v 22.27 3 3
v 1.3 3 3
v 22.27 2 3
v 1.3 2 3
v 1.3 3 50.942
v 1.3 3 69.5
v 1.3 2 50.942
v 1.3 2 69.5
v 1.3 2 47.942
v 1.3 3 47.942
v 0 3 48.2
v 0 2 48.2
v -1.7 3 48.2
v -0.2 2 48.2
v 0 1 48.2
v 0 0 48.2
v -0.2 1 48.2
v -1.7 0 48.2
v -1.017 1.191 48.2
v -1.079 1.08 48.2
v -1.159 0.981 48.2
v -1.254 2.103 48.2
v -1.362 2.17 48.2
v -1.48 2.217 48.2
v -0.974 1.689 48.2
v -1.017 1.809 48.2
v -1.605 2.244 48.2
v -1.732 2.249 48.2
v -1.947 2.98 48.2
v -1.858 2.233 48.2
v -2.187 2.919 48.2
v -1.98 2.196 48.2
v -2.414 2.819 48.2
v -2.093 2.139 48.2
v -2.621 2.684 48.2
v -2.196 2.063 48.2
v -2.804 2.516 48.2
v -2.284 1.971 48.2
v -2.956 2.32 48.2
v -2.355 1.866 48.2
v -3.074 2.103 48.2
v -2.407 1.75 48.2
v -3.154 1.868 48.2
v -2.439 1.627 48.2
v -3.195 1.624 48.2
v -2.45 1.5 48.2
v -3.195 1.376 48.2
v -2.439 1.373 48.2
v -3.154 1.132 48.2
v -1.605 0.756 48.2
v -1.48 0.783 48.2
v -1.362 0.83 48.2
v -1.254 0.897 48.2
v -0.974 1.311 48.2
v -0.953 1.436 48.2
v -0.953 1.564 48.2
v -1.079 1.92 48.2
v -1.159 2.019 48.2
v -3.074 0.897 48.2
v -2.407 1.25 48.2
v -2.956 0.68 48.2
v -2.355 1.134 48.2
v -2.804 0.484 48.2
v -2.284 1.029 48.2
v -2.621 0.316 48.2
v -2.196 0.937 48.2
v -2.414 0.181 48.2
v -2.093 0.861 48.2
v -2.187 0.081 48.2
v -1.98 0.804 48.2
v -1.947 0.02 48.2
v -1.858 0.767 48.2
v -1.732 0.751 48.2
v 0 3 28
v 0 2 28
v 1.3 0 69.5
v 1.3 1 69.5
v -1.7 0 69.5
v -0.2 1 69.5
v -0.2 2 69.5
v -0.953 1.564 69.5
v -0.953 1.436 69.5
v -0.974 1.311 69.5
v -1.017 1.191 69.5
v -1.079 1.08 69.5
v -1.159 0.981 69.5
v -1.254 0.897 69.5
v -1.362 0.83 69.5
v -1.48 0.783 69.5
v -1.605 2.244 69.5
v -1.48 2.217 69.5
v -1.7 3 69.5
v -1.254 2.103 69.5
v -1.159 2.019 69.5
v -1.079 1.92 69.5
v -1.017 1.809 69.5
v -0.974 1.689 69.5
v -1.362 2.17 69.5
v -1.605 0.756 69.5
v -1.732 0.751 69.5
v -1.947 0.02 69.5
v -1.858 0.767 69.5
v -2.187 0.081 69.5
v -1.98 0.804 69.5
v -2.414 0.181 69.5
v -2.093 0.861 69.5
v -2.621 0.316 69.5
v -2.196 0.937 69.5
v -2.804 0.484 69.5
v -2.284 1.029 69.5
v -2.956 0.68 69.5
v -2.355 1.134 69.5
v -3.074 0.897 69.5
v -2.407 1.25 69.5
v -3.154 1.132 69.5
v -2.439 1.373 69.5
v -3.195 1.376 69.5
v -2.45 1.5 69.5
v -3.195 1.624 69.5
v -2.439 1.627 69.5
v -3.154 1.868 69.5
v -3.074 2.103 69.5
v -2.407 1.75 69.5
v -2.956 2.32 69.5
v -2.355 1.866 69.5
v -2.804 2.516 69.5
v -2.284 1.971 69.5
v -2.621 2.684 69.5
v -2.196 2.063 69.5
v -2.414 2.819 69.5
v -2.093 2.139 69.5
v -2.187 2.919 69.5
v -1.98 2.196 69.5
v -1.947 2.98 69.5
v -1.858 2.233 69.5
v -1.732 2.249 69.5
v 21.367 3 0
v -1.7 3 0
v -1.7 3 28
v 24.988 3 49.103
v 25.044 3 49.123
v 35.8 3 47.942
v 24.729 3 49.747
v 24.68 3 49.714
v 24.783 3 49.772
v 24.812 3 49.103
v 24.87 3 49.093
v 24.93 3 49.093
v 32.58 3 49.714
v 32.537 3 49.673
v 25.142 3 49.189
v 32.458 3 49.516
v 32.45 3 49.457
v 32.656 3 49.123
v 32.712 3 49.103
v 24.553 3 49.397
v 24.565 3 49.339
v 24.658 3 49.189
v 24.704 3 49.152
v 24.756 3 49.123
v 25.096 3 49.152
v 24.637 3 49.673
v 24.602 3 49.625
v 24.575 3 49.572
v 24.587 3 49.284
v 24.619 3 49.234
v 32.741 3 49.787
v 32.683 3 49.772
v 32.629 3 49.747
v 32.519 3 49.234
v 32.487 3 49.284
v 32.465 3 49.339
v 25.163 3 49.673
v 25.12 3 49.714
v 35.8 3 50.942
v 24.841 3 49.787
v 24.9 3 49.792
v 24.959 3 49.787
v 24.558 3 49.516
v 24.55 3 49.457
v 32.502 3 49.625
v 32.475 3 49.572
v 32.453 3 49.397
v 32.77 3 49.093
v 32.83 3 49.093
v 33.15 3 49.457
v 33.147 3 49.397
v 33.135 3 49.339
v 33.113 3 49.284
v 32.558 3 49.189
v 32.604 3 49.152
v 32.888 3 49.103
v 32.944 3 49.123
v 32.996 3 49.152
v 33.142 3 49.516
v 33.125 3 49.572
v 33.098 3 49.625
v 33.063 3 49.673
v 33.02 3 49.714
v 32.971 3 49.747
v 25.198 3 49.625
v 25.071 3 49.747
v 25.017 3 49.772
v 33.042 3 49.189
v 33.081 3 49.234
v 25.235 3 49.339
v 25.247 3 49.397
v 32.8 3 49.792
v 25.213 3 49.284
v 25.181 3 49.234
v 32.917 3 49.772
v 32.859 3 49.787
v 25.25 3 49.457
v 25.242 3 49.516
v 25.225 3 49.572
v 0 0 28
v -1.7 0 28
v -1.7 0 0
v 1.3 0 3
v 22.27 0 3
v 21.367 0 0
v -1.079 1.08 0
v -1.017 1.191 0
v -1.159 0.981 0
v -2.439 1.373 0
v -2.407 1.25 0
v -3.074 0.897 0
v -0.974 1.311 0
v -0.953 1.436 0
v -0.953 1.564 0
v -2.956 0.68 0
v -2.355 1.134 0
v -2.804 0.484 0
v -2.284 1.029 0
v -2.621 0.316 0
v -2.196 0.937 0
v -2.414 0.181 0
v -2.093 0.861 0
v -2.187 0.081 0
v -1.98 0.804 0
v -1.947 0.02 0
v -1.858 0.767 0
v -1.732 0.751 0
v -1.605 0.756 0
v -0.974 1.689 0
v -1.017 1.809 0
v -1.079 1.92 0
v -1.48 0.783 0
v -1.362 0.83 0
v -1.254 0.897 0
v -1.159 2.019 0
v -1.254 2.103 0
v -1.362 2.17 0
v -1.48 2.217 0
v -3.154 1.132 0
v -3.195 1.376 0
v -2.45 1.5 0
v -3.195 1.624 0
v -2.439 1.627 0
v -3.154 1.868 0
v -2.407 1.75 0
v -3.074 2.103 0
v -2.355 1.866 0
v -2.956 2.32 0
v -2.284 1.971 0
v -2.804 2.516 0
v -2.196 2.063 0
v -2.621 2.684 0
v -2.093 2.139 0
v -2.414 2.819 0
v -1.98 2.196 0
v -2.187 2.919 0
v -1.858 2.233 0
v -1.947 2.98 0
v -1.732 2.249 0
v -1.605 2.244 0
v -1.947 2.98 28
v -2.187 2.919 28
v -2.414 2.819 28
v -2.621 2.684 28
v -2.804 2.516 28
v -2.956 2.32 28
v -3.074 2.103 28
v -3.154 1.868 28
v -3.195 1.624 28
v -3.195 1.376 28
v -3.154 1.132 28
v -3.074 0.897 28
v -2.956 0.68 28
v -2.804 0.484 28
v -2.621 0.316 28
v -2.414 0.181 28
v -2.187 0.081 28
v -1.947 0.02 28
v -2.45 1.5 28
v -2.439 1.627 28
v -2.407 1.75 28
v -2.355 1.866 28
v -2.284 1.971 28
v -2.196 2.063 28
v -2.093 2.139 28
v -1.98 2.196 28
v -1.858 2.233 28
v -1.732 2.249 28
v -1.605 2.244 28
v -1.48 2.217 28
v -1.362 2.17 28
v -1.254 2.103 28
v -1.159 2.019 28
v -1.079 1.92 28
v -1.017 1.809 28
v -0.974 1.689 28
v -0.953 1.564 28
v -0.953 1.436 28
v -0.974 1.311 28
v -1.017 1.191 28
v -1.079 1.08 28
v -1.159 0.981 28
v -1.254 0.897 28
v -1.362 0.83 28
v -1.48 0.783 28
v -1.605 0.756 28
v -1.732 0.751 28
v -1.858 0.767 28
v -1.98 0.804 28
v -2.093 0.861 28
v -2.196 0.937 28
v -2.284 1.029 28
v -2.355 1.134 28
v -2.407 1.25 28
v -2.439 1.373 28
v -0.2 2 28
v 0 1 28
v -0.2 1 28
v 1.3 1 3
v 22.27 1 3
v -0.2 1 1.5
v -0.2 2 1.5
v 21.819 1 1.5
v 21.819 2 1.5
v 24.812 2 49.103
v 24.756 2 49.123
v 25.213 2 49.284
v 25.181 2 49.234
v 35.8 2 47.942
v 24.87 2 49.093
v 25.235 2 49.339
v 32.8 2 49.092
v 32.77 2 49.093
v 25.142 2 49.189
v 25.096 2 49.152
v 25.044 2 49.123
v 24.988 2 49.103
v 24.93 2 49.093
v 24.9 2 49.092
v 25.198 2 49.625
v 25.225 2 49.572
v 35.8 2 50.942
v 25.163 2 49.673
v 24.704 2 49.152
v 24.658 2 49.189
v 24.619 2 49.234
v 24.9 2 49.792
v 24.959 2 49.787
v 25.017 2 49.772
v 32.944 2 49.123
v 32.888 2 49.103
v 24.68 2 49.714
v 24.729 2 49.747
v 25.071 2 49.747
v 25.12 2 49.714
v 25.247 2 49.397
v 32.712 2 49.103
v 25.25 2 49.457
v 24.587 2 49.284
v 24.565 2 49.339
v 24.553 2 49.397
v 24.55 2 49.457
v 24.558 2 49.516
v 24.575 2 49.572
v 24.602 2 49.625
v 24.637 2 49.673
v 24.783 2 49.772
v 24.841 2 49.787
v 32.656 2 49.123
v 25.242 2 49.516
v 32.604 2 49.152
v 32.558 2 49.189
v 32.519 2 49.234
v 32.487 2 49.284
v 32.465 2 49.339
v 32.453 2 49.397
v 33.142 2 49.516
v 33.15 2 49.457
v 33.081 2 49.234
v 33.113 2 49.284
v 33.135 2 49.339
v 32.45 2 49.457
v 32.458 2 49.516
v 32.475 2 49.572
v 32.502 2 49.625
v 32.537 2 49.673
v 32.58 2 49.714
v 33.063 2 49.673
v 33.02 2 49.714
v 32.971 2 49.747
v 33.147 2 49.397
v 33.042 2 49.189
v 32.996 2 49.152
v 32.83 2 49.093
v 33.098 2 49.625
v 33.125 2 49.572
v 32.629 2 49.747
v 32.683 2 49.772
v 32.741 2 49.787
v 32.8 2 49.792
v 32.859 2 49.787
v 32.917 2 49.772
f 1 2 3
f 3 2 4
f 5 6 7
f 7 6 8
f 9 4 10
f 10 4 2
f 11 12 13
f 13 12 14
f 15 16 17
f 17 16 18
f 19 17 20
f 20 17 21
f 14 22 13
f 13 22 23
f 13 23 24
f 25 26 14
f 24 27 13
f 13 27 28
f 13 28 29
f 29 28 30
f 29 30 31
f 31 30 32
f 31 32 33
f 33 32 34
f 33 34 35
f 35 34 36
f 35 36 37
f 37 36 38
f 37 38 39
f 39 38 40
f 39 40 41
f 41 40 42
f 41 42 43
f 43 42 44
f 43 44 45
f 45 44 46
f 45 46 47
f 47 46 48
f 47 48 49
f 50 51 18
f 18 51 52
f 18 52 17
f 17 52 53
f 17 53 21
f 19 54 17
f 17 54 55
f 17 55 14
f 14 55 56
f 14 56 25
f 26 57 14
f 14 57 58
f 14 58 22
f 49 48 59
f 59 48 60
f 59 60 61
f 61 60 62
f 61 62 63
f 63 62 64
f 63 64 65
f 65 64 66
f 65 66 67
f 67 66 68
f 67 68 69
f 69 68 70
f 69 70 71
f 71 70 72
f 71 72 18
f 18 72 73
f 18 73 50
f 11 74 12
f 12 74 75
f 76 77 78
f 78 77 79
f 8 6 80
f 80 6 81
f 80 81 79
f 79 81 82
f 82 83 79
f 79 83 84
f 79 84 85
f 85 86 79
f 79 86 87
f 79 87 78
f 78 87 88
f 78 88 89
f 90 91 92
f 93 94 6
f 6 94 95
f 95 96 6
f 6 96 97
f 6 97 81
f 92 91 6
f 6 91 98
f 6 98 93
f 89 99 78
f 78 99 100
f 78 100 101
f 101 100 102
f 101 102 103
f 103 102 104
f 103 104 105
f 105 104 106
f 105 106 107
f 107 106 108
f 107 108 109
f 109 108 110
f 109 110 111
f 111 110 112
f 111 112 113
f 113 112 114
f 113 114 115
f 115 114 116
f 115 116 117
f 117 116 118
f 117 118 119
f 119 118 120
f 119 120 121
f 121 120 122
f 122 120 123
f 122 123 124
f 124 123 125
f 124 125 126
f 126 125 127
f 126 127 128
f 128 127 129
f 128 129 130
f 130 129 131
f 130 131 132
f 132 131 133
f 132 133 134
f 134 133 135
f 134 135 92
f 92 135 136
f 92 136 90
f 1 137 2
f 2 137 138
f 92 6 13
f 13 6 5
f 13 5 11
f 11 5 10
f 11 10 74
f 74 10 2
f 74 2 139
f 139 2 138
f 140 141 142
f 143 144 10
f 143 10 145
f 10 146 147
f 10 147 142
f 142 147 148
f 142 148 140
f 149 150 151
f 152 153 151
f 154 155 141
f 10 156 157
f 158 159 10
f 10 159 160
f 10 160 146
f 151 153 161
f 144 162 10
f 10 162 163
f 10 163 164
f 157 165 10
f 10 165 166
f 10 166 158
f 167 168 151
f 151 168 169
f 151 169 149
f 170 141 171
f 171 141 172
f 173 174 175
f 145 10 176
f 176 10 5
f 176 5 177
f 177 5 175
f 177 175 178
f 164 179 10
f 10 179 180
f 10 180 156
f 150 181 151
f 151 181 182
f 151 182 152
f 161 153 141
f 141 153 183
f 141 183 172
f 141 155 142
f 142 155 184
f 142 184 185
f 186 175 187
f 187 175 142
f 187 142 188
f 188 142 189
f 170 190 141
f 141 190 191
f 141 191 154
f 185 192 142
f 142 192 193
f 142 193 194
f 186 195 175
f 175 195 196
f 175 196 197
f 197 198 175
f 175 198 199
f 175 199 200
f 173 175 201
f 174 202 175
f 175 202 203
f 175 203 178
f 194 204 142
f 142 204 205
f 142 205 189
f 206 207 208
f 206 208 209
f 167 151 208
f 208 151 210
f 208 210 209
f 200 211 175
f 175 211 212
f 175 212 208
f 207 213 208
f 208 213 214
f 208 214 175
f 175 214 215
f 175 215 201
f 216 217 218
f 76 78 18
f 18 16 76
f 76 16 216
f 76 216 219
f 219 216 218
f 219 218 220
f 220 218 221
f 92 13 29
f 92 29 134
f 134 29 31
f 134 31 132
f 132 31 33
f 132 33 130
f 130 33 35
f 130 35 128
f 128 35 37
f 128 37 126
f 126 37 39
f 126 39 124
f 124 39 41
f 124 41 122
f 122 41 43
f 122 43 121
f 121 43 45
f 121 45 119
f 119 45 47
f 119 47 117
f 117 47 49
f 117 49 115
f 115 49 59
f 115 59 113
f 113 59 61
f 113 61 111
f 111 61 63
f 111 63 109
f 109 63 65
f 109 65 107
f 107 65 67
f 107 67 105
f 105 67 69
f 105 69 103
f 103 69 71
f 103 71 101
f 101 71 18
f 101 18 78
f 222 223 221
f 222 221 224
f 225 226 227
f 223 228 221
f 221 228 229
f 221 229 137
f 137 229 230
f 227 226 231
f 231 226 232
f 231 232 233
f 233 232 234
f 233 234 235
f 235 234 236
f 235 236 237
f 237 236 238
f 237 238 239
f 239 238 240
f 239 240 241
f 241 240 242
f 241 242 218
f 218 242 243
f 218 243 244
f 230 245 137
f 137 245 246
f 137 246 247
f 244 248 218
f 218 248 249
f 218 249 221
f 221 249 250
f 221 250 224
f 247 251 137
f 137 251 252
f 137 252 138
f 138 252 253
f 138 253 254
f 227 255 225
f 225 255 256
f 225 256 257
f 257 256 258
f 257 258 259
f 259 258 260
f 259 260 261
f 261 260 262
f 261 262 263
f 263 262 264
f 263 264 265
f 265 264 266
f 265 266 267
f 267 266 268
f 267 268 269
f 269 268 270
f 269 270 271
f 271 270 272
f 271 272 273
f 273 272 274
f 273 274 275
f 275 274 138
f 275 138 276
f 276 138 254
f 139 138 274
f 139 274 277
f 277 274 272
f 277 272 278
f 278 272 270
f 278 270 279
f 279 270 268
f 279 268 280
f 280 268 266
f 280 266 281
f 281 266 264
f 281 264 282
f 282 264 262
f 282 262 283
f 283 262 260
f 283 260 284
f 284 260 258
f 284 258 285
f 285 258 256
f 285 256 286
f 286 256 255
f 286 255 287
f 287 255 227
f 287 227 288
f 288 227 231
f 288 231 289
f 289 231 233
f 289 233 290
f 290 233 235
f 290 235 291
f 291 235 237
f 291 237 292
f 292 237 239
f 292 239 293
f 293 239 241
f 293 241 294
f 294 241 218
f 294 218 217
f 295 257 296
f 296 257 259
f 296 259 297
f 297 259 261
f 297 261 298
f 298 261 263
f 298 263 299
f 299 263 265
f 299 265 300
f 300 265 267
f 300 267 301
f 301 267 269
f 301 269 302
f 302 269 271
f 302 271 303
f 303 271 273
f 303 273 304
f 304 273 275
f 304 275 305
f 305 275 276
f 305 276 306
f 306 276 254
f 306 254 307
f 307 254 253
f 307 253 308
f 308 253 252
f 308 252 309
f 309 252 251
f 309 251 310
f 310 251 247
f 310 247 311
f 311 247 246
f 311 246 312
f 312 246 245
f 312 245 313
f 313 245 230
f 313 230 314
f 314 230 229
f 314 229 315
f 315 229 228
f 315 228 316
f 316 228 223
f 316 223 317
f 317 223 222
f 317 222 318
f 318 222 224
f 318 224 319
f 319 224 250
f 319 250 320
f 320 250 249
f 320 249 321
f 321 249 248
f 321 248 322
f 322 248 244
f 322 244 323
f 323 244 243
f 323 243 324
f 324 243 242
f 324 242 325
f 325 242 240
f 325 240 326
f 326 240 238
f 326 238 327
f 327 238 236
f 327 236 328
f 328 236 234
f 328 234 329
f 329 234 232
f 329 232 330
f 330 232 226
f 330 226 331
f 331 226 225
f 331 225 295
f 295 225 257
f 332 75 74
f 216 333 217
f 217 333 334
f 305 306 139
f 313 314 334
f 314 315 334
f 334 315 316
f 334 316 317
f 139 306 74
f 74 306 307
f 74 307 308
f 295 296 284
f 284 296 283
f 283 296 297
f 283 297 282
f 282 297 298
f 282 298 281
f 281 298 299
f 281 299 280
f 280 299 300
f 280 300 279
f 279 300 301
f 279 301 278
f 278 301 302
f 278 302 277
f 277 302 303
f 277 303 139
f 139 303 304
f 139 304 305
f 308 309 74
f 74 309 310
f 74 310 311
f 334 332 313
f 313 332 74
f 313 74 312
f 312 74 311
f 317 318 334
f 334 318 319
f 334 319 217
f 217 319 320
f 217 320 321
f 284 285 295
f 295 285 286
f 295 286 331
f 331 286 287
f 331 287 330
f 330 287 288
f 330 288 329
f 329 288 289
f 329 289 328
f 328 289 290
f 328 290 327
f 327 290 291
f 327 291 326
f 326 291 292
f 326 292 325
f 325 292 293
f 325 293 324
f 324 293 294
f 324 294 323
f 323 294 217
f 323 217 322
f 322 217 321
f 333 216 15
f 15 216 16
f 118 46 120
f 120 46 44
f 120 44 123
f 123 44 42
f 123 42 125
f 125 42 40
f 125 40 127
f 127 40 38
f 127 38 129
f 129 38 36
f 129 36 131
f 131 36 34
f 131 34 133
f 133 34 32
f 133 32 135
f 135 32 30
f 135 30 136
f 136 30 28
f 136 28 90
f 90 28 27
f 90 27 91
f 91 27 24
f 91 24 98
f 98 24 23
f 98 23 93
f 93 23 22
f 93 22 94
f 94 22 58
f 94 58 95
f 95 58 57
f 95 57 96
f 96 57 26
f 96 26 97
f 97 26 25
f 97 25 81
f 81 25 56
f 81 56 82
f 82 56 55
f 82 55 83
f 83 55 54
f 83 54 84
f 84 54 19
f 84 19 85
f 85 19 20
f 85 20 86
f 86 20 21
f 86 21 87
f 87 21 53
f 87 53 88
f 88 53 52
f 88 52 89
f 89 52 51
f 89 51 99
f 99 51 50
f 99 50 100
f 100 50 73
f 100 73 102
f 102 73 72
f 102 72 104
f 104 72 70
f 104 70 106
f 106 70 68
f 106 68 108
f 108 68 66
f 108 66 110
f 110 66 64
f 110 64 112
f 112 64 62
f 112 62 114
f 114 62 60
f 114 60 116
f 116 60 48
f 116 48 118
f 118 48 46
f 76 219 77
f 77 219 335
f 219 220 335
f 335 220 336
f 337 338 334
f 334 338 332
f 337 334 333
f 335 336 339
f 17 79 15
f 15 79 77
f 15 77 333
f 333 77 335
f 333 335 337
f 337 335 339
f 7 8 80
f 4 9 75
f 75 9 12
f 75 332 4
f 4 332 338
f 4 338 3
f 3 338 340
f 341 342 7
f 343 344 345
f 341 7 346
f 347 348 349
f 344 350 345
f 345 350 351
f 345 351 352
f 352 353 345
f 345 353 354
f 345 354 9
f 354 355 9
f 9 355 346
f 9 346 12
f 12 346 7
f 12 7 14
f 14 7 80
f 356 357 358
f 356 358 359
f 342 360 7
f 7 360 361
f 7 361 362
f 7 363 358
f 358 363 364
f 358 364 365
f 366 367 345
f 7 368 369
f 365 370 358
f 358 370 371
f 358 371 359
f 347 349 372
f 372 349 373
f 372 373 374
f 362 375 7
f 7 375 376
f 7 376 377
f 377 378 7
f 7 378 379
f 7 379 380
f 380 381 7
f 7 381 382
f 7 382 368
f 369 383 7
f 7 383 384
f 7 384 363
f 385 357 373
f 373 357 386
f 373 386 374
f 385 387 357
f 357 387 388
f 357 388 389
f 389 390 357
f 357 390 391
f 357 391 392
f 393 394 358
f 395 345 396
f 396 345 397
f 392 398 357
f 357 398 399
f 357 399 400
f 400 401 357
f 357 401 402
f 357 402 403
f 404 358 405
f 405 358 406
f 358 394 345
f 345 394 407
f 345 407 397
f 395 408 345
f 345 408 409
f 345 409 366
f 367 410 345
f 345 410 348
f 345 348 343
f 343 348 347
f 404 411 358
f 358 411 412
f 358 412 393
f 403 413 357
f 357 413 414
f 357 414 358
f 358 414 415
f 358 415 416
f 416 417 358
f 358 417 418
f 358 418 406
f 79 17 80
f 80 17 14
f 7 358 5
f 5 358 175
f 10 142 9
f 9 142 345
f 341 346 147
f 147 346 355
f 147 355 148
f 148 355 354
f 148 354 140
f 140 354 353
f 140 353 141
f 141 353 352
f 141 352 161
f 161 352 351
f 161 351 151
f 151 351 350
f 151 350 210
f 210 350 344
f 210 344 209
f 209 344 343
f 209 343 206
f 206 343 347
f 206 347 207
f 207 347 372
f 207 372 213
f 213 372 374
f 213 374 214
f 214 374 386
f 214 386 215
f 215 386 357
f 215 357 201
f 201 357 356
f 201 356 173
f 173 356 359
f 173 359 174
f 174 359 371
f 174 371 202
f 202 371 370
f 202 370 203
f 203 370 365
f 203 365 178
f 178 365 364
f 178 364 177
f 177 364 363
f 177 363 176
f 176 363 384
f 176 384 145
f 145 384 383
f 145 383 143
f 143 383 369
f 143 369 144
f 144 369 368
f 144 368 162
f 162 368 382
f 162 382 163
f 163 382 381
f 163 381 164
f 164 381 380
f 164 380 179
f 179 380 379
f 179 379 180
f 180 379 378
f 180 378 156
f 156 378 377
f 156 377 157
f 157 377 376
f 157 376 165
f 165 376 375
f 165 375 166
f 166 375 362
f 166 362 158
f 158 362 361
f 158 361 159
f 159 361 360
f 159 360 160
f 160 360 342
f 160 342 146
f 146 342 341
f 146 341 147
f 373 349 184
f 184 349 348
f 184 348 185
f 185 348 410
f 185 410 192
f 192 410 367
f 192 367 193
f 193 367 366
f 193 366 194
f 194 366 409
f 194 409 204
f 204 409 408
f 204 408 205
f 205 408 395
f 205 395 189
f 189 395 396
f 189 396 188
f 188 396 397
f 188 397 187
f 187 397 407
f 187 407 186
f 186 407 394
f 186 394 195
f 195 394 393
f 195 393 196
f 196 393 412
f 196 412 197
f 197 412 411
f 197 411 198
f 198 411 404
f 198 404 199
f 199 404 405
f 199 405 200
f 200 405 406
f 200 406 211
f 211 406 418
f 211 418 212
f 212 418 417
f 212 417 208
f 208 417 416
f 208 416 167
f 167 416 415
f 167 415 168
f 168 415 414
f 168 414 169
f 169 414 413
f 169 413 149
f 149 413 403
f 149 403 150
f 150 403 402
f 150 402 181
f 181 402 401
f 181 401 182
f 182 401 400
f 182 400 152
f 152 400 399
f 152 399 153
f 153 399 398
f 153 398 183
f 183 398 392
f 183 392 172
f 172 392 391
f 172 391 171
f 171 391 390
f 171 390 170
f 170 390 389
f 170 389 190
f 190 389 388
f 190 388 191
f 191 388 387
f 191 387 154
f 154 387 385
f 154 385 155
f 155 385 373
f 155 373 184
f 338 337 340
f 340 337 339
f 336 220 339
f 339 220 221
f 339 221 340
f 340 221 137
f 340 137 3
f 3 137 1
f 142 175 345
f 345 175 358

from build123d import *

# Parameters (mm, degrees)
EXTRUDE_1_DEPTH                   = 3
SKETCH_2_R                        = 1.5
SKETCH_2_R_2                      = 0.75
EXTRUDE_2_DEPTH                   = 73
SKETCH_3_W                        = 42
SKETCH_3_H                        = 3.5
SKETCH_3_W_2                      = 3.2
SKETCH_3_H_2                      = 20.2
CUT_EXTRUDE_1_DEPTH               = 83.725086884
CUT_EXTRUDE_2_REACH               = 84.028
CUT_EXTRUDE_2_OFFSET_FROM_SURFACE = 1.5
CUT_EXTRUDE_START                 = -1.5
SKETCH_4_W                        = 44.5
SKETCH_4_H                        = 1
SKETCH_4_3_W                      = 22
SKETCH_4_3_H                      = 1
CUT_EXTRUDE_3_DEPTH               = 37.5
SKETCH_5_W                        = 3
SKETCH_5_H                        = 1
EXTRUDE_3_DEPTH                   = 34.5
SKETCH_6_R                        = 0.35
CUT_EXTRUDE_4_DEPTH               = 80.653562381
SKETCH_7_W                        = 24.036657481
SKETCH_7_H                        = 1
CUT_EXTRUDE_5_DEPTH               = 1.5
CUT_EXTRUDE_6_DEPTH               = 80.653562381


with BuildPart() as part:
    # 草图1 → 凸台-拉伸1 (new body)
    with BuildSketch(Plane(origin=(0, 0, 0), x_dir=(1, 0, 0), z_dir=(0, 1, 0))):
        Polygon((0, 0), (0, -73), (38.8, -73), (38.8, -47.5), (24.5, 0), align=None)
    extrude(amount=EXTRUDE_1_DEPTH)

    # 草图2 → 凸台-拉伸2 (add)
    # profile 1 of 2: a face of its own
    with BuildSketch(Plane(origin=(0, 0, 0), x_dir=(-1, 0, 0), z_dir=(0, 0, -1))):
        with BuildLine():
            Line((0, 3), (0, 0))
            Line((0, 0), (1.7, 0))
            ThreePointArc((1.7, 0), (0.2, 1.5), (1.7, 3))
            Line((1.7, 3), (0, 3))
        make_face()
    # profile 2 of 2: a face of its own
    with BuildSketch(Plane(origin=(0, 0, 0), x_dir=(-1, 0, 0), z_dir=(0, 0, -1))):
        with Locations((1.7, 1.5)):
            Circle(SKETCH_2_R)
        with Locations((1.7, 1.5)):
            Circle(SKETCH_2_R_2, mode=Mode.SUBTRACT)
    extrude(amount=-EXTRUDE_2_DEPTH)

    # 草图3 → 切除-拉伸1 (cut, through all)
    with BuildSketch(Plane(origin=(0, 3, 0), x_dir=(1, 0, 0), z_dir=(0, 1, 0))):
        with Locations((17.8, -71.25)):
            Rectangle(SKETCH_3_W, SKETCH_3_H)
        with Locations((-1.6, -38.1)):
            Rectangle(SKETCH_3_W_2, SKETCH_3_H_2)
        Polygon((1.3, -3), (22.270157068, -3), (35.8, -47.941785964), (35.8, -69.5), (1.3, -69.5), align=None)
    extrude(amount=-CUT_EXTRUDE_1_DEPTH, mode=Mode.SUBTRACT)

    # 切除-拉伸2: up to this face of the body (flat: up to its plane, moved by the offset)
    cut_extrude_2_end = Plane(part.part.faces().sort_by_distance((29.035078534, 1.5, 25.470892982))[0]).offset(-CUT_EXTRUDE_2_OFFSET_FROM_SURFACE)
    # 草图4 → 切除-拉伸2 (cut, up to the picked face)
    with BuildSketch(Plane(origin=(1.3, 0, 0), x_dir=(0, 0, -1), z_dir=(1, 0, 0)).offset(CUT_EXTRUDE_START), mode=Mode.PRIVATE) as cut_extrude_2_sk1:
        with Locations((-25.25, 1.5)):
            Rectangle(SKETCH_4_W, SKETCH_4_H)
    cut_extrude_2_tool1 = split(extrude(cut_extrude_2_sk1.sketch, amount=CUT_EXTRUDE_2_REACH, mode=Mode.PRIVATE), bisect_by=cut_extrude_2_end, keep=Keep.BOTH, mode=Mode.PRIVATE)
    add(cut_extrude_2_tool1.solids().sort_by(Axis((-0.2, 1.5, 25.25), (1, 0, 0)))[0], mode=Mode.SUBTRACT)

    # 草图4<3> → 切除-拉伸3 (cut)
    with BuildSketch(Plane(origin=(1.3, 0, 0), x_dir=(0, 0, -1), z_dir=(1, 0, 0)).offset(CUT_EXTRUDE_START)):
        with Locations((-58.5, 1.5)):
            Rectangle(SKETCH_4_3_W, SKETCH_4_3_H)
    extrude(amount=CUT_EXTRUDE_3_DEPTH, mode=Mode.SUBTRACT)

    # 草图5 → 凸台-拉伸3 (add)
    with BuildSketch(Plane.ZY.offset(-35.8)):
        with Locations((49.441785964, 2.5)):
            Rectangle(SKETCH_5_W, SKETCH_5_H)
    extrude(amount=EXTRUDE_3_DEPTH)

    # 草图6 → 切除-拉伸4 (cut, through all)
    with BuildSketch(Plane(origin=(0, 3, 0), x_dir=(1, 0, 0), z_dir=(0, 1, 0))):
        with Locations(Location((32.8, -49.441785964, 0), (0, 0, 270))):
            Circle(SKETCH_6_R)
        with Locations(Location((24.9, -49.441785964, 0), (0, 0, 270))):
            Circle(SKETCH_6_R)
    extrude(amount=-CUT_EXTRUDE_4_DEPTH, mode=Mode.SUBTRACT)

    # 草图7 → 切除-拉伸5 (cut)
    with BuildSketch(Plane.XY.offset(3)):
        with Locations((11.818328741, 1.5)):
            Rectangle(SKETCH_7_W, SKETCH_7_H)
    extrude(amount=-CUT_EXTRUDE_5_DEPTH, mode=Mode.SUBTRACT)

    # 草图8 → 切除-拉伸6 (cut, through all)
    with BuildSketch(Plane(origin=(0, 3, 0), x_dir=(1, 0, 0), z_dir=(0, 1, 0))):
        Polygon((20.332372981, 3.436695391), (35.8, -47.941785964), (35.8, -72.849501568), (56.307983414, -72.849501568), (56.307983414, 3.436695391), align=None)
    extrude(amount=-CUT_EXTRUDE_6_DEPTH, mode=Mode.SUBTRACT)


solid = part.part
